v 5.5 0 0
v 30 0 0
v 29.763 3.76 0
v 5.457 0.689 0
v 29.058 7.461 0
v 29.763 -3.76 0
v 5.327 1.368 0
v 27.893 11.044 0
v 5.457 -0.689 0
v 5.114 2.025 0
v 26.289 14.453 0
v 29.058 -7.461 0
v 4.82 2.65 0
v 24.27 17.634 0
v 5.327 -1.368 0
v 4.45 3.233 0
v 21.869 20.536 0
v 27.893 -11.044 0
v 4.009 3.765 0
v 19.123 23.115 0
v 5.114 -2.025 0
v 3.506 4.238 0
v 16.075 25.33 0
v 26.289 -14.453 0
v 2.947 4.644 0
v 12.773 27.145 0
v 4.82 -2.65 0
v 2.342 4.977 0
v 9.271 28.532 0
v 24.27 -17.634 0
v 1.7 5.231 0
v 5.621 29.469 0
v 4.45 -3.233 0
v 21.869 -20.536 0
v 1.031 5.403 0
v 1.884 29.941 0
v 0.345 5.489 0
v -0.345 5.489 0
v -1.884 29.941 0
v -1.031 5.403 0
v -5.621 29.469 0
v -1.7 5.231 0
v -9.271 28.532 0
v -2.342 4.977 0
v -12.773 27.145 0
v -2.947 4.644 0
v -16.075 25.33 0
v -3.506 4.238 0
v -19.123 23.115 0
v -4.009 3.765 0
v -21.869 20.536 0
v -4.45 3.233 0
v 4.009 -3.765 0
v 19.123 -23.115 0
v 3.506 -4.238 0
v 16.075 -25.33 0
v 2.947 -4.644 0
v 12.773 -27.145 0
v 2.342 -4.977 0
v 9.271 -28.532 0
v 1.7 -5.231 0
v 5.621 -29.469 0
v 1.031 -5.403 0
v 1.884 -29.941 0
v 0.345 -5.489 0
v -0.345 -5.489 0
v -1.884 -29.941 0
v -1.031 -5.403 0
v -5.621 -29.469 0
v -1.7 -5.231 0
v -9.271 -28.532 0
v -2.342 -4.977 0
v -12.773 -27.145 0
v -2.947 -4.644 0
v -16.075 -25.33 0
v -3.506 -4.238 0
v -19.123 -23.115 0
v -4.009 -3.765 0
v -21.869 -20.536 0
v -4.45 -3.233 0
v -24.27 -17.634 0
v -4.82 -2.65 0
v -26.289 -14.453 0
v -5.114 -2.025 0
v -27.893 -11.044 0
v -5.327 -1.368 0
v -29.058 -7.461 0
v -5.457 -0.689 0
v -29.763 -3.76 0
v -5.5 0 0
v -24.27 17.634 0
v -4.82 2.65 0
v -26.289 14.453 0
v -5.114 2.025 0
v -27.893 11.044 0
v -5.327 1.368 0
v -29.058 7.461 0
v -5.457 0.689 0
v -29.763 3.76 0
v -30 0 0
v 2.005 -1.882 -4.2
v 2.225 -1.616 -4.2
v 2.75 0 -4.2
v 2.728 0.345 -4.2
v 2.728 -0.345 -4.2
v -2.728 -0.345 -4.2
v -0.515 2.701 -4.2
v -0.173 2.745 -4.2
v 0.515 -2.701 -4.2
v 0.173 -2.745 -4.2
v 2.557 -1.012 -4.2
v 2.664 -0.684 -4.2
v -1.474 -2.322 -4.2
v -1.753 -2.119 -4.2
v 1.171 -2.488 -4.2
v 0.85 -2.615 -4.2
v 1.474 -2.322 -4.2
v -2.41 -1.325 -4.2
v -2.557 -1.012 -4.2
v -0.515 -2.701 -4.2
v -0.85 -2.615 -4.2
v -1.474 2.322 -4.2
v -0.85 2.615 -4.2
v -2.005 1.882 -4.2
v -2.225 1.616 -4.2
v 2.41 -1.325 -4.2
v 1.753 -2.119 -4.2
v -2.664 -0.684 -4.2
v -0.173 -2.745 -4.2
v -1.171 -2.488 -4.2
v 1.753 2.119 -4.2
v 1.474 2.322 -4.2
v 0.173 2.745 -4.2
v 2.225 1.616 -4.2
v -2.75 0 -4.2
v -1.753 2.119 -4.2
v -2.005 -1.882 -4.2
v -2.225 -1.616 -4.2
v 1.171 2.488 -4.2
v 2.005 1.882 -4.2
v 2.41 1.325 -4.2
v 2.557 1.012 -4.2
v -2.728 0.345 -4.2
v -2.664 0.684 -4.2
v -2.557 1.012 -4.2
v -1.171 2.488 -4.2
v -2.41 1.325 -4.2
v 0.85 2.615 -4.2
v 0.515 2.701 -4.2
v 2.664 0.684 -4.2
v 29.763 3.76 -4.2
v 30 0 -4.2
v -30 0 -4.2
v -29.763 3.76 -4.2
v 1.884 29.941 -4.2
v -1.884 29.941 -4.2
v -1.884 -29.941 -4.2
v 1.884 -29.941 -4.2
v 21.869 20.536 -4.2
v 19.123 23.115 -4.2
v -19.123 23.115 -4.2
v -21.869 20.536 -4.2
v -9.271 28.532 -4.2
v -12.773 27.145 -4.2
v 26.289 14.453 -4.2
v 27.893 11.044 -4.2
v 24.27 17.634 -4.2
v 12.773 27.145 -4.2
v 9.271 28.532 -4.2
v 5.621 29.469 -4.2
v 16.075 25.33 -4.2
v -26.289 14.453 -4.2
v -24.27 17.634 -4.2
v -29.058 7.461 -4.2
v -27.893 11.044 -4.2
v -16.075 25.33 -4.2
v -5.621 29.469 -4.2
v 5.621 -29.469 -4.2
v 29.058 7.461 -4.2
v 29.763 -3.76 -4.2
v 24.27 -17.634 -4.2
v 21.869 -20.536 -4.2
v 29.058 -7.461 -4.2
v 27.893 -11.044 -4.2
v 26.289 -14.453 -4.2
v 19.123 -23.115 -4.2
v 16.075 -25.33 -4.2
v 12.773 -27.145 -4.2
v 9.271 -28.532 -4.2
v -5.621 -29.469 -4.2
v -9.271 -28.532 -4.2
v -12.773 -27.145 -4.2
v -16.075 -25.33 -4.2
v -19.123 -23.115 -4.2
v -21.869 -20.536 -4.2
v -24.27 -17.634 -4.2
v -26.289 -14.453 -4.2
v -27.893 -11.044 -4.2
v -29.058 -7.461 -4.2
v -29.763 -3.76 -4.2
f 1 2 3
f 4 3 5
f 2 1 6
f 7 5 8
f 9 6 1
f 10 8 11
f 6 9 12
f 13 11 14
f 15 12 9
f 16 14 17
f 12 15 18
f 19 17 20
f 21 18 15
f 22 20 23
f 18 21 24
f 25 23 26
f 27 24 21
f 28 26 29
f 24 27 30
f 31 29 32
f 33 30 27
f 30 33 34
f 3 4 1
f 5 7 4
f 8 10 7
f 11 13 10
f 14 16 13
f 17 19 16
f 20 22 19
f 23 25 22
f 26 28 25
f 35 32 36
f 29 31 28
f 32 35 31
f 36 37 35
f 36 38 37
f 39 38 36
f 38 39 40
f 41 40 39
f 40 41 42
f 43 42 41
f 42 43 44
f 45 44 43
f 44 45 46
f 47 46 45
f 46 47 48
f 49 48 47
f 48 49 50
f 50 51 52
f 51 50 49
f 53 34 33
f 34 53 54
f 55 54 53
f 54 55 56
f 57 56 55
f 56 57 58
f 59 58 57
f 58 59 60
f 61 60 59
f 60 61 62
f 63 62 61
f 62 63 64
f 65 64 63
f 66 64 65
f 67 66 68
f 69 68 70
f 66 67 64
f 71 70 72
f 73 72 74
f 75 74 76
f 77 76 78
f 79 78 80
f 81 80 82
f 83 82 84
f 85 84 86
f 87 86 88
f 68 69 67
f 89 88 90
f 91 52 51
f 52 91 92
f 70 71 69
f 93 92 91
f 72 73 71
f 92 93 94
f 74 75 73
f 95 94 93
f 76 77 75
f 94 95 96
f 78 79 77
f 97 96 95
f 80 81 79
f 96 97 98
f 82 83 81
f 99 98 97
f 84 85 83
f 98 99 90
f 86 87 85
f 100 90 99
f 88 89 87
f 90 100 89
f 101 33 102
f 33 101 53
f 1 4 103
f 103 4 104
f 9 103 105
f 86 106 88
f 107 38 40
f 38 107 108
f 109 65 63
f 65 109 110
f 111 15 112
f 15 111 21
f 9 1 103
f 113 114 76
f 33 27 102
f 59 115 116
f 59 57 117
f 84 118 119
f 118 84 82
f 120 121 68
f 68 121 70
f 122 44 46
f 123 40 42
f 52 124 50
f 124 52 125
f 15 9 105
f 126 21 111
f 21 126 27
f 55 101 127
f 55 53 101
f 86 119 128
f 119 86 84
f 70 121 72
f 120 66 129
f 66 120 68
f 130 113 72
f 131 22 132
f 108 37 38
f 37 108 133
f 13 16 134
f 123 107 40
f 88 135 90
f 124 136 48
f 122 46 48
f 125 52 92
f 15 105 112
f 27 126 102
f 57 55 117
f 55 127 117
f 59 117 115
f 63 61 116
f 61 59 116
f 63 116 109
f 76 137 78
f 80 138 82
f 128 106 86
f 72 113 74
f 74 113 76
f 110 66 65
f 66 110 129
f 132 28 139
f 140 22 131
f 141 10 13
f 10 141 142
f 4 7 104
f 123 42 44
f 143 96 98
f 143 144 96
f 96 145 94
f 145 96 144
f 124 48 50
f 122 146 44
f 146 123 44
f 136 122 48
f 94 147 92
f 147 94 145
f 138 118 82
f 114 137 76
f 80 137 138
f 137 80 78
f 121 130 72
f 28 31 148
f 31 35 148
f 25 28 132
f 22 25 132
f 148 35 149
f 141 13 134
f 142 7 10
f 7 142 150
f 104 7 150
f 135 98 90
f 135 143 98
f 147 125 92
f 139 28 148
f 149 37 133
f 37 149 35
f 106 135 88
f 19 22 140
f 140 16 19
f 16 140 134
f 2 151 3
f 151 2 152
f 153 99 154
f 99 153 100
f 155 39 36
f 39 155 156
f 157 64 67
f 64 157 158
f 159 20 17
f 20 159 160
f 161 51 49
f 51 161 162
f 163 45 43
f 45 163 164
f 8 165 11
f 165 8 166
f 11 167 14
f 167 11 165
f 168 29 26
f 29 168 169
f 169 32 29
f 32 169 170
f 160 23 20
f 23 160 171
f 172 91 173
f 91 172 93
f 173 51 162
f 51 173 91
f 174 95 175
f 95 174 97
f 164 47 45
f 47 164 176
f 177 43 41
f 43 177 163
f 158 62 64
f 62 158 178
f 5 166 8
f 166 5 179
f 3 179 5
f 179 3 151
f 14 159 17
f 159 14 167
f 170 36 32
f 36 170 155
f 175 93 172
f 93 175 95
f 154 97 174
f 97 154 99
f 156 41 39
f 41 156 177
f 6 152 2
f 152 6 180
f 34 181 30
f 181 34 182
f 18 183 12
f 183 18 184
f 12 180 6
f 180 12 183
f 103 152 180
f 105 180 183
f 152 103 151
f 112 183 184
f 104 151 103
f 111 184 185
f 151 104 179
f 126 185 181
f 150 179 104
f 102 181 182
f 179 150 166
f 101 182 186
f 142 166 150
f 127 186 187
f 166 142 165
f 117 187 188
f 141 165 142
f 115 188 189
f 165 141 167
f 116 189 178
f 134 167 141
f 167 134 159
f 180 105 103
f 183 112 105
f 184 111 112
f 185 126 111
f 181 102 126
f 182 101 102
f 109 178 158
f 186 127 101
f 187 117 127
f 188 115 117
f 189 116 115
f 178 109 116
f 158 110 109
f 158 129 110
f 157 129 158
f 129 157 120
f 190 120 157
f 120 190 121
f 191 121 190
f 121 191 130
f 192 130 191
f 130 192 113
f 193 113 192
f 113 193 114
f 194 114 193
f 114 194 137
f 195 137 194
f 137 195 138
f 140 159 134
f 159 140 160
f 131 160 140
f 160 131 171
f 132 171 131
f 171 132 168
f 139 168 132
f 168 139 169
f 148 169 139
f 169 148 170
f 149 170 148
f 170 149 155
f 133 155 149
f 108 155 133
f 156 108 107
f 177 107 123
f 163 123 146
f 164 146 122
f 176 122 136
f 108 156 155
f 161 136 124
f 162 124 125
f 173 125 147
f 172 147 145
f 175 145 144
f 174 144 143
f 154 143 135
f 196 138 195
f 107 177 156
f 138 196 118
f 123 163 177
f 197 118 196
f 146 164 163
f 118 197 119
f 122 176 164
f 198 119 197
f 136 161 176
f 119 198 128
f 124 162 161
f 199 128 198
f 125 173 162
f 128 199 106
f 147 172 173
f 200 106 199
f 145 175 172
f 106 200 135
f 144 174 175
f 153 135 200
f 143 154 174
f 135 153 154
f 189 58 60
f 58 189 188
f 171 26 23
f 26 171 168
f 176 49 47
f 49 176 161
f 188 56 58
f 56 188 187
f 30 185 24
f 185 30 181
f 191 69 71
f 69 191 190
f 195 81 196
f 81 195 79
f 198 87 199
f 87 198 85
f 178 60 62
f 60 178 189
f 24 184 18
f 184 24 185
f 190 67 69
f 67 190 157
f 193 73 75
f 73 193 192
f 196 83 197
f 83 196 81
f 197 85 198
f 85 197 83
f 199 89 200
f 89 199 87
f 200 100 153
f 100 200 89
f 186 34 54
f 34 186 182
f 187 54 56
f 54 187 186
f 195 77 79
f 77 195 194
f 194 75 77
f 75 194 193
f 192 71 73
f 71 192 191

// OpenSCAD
$fn = 50;


difference() {
	union() {
		translate(v = [0, 0, -4.2000000000]) {
			cylinder(h = 4.2000000000, r = 30.0000000000);
		}
	}
	union() {
		translate(v = [0, 0, 0]) {
			rotate(a = [0, 0, 0]) {
				difference() {
					union() {
						translate(v = [0, 0, -7.2000000000]) {
							cylinder(h = 7.2000000000, r = 2.2500000000);
						}
						translate(v = [0, 0, -4.2000000000]) {
							cylinder(h = 4.2000000000, r1 = 2.7500000000, r2 = 5.5000000000);
						}
						translate(v = [0, 0, -7.2000000000]) {
							cylinder(h = 7.2000000000, r = 2.7500000000);
						}
						translate(v = [0, 0, -7.2000000000]) {
							cylinder(h = 7.2000000000, r = 2.2500000000);
						}
					}
					union();
				}
			}
		}
	}
}
